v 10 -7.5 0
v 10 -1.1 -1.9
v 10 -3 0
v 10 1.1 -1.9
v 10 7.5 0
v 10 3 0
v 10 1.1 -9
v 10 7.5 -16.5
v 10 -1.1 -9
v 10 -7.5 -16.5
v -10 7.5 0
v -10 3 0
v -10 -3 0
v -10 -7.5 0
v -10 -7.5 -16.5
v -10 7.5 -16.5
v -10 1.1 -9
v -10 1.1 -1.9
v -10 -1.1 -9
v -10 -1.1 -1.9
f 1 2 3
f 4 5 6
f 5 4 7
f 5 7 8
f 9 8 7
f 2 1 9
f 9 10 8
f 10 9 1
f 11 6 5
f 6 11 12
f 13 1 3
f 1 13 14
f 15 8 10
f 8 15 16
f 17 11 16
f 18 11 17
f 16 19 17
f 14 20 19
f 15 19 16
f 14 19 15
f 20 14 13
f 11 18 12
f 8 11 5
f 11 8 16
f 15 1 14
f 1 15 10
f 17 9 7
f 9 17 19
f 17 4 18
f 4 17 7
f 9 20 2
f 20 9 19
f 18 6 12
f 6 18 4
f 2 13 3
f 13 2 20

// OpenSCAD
BIG = 1000;

BELT_H = 6;
DBELT_T = 2.2;
TAPER_H = 3;

module beltClamp(l=20,t=15) {
  BLOCK_L = l;
  BLOCK_T = t;
  BLOCK_H = BELT_H+TAPER_H+BLOCK_T/2;
  difference() {
    translate([0,0,-BLOCK_H/2]) cube([BLOCK_L,BLOCK_T,BLOCK_H],center=true);
    translate([0,0,-(BELT_H+TAPER_H)/2]) cube([BLOCK_L,DBELT_T,BELT_H+TAPER_H],center=true);
    translate([0,0,-TAPER_H]) rotate([45,0,0]) translate([-BLOCK_L/2,0,0]) cube([BLOCK_L,BIG,BIG]);
  }
}

beltClamp();
